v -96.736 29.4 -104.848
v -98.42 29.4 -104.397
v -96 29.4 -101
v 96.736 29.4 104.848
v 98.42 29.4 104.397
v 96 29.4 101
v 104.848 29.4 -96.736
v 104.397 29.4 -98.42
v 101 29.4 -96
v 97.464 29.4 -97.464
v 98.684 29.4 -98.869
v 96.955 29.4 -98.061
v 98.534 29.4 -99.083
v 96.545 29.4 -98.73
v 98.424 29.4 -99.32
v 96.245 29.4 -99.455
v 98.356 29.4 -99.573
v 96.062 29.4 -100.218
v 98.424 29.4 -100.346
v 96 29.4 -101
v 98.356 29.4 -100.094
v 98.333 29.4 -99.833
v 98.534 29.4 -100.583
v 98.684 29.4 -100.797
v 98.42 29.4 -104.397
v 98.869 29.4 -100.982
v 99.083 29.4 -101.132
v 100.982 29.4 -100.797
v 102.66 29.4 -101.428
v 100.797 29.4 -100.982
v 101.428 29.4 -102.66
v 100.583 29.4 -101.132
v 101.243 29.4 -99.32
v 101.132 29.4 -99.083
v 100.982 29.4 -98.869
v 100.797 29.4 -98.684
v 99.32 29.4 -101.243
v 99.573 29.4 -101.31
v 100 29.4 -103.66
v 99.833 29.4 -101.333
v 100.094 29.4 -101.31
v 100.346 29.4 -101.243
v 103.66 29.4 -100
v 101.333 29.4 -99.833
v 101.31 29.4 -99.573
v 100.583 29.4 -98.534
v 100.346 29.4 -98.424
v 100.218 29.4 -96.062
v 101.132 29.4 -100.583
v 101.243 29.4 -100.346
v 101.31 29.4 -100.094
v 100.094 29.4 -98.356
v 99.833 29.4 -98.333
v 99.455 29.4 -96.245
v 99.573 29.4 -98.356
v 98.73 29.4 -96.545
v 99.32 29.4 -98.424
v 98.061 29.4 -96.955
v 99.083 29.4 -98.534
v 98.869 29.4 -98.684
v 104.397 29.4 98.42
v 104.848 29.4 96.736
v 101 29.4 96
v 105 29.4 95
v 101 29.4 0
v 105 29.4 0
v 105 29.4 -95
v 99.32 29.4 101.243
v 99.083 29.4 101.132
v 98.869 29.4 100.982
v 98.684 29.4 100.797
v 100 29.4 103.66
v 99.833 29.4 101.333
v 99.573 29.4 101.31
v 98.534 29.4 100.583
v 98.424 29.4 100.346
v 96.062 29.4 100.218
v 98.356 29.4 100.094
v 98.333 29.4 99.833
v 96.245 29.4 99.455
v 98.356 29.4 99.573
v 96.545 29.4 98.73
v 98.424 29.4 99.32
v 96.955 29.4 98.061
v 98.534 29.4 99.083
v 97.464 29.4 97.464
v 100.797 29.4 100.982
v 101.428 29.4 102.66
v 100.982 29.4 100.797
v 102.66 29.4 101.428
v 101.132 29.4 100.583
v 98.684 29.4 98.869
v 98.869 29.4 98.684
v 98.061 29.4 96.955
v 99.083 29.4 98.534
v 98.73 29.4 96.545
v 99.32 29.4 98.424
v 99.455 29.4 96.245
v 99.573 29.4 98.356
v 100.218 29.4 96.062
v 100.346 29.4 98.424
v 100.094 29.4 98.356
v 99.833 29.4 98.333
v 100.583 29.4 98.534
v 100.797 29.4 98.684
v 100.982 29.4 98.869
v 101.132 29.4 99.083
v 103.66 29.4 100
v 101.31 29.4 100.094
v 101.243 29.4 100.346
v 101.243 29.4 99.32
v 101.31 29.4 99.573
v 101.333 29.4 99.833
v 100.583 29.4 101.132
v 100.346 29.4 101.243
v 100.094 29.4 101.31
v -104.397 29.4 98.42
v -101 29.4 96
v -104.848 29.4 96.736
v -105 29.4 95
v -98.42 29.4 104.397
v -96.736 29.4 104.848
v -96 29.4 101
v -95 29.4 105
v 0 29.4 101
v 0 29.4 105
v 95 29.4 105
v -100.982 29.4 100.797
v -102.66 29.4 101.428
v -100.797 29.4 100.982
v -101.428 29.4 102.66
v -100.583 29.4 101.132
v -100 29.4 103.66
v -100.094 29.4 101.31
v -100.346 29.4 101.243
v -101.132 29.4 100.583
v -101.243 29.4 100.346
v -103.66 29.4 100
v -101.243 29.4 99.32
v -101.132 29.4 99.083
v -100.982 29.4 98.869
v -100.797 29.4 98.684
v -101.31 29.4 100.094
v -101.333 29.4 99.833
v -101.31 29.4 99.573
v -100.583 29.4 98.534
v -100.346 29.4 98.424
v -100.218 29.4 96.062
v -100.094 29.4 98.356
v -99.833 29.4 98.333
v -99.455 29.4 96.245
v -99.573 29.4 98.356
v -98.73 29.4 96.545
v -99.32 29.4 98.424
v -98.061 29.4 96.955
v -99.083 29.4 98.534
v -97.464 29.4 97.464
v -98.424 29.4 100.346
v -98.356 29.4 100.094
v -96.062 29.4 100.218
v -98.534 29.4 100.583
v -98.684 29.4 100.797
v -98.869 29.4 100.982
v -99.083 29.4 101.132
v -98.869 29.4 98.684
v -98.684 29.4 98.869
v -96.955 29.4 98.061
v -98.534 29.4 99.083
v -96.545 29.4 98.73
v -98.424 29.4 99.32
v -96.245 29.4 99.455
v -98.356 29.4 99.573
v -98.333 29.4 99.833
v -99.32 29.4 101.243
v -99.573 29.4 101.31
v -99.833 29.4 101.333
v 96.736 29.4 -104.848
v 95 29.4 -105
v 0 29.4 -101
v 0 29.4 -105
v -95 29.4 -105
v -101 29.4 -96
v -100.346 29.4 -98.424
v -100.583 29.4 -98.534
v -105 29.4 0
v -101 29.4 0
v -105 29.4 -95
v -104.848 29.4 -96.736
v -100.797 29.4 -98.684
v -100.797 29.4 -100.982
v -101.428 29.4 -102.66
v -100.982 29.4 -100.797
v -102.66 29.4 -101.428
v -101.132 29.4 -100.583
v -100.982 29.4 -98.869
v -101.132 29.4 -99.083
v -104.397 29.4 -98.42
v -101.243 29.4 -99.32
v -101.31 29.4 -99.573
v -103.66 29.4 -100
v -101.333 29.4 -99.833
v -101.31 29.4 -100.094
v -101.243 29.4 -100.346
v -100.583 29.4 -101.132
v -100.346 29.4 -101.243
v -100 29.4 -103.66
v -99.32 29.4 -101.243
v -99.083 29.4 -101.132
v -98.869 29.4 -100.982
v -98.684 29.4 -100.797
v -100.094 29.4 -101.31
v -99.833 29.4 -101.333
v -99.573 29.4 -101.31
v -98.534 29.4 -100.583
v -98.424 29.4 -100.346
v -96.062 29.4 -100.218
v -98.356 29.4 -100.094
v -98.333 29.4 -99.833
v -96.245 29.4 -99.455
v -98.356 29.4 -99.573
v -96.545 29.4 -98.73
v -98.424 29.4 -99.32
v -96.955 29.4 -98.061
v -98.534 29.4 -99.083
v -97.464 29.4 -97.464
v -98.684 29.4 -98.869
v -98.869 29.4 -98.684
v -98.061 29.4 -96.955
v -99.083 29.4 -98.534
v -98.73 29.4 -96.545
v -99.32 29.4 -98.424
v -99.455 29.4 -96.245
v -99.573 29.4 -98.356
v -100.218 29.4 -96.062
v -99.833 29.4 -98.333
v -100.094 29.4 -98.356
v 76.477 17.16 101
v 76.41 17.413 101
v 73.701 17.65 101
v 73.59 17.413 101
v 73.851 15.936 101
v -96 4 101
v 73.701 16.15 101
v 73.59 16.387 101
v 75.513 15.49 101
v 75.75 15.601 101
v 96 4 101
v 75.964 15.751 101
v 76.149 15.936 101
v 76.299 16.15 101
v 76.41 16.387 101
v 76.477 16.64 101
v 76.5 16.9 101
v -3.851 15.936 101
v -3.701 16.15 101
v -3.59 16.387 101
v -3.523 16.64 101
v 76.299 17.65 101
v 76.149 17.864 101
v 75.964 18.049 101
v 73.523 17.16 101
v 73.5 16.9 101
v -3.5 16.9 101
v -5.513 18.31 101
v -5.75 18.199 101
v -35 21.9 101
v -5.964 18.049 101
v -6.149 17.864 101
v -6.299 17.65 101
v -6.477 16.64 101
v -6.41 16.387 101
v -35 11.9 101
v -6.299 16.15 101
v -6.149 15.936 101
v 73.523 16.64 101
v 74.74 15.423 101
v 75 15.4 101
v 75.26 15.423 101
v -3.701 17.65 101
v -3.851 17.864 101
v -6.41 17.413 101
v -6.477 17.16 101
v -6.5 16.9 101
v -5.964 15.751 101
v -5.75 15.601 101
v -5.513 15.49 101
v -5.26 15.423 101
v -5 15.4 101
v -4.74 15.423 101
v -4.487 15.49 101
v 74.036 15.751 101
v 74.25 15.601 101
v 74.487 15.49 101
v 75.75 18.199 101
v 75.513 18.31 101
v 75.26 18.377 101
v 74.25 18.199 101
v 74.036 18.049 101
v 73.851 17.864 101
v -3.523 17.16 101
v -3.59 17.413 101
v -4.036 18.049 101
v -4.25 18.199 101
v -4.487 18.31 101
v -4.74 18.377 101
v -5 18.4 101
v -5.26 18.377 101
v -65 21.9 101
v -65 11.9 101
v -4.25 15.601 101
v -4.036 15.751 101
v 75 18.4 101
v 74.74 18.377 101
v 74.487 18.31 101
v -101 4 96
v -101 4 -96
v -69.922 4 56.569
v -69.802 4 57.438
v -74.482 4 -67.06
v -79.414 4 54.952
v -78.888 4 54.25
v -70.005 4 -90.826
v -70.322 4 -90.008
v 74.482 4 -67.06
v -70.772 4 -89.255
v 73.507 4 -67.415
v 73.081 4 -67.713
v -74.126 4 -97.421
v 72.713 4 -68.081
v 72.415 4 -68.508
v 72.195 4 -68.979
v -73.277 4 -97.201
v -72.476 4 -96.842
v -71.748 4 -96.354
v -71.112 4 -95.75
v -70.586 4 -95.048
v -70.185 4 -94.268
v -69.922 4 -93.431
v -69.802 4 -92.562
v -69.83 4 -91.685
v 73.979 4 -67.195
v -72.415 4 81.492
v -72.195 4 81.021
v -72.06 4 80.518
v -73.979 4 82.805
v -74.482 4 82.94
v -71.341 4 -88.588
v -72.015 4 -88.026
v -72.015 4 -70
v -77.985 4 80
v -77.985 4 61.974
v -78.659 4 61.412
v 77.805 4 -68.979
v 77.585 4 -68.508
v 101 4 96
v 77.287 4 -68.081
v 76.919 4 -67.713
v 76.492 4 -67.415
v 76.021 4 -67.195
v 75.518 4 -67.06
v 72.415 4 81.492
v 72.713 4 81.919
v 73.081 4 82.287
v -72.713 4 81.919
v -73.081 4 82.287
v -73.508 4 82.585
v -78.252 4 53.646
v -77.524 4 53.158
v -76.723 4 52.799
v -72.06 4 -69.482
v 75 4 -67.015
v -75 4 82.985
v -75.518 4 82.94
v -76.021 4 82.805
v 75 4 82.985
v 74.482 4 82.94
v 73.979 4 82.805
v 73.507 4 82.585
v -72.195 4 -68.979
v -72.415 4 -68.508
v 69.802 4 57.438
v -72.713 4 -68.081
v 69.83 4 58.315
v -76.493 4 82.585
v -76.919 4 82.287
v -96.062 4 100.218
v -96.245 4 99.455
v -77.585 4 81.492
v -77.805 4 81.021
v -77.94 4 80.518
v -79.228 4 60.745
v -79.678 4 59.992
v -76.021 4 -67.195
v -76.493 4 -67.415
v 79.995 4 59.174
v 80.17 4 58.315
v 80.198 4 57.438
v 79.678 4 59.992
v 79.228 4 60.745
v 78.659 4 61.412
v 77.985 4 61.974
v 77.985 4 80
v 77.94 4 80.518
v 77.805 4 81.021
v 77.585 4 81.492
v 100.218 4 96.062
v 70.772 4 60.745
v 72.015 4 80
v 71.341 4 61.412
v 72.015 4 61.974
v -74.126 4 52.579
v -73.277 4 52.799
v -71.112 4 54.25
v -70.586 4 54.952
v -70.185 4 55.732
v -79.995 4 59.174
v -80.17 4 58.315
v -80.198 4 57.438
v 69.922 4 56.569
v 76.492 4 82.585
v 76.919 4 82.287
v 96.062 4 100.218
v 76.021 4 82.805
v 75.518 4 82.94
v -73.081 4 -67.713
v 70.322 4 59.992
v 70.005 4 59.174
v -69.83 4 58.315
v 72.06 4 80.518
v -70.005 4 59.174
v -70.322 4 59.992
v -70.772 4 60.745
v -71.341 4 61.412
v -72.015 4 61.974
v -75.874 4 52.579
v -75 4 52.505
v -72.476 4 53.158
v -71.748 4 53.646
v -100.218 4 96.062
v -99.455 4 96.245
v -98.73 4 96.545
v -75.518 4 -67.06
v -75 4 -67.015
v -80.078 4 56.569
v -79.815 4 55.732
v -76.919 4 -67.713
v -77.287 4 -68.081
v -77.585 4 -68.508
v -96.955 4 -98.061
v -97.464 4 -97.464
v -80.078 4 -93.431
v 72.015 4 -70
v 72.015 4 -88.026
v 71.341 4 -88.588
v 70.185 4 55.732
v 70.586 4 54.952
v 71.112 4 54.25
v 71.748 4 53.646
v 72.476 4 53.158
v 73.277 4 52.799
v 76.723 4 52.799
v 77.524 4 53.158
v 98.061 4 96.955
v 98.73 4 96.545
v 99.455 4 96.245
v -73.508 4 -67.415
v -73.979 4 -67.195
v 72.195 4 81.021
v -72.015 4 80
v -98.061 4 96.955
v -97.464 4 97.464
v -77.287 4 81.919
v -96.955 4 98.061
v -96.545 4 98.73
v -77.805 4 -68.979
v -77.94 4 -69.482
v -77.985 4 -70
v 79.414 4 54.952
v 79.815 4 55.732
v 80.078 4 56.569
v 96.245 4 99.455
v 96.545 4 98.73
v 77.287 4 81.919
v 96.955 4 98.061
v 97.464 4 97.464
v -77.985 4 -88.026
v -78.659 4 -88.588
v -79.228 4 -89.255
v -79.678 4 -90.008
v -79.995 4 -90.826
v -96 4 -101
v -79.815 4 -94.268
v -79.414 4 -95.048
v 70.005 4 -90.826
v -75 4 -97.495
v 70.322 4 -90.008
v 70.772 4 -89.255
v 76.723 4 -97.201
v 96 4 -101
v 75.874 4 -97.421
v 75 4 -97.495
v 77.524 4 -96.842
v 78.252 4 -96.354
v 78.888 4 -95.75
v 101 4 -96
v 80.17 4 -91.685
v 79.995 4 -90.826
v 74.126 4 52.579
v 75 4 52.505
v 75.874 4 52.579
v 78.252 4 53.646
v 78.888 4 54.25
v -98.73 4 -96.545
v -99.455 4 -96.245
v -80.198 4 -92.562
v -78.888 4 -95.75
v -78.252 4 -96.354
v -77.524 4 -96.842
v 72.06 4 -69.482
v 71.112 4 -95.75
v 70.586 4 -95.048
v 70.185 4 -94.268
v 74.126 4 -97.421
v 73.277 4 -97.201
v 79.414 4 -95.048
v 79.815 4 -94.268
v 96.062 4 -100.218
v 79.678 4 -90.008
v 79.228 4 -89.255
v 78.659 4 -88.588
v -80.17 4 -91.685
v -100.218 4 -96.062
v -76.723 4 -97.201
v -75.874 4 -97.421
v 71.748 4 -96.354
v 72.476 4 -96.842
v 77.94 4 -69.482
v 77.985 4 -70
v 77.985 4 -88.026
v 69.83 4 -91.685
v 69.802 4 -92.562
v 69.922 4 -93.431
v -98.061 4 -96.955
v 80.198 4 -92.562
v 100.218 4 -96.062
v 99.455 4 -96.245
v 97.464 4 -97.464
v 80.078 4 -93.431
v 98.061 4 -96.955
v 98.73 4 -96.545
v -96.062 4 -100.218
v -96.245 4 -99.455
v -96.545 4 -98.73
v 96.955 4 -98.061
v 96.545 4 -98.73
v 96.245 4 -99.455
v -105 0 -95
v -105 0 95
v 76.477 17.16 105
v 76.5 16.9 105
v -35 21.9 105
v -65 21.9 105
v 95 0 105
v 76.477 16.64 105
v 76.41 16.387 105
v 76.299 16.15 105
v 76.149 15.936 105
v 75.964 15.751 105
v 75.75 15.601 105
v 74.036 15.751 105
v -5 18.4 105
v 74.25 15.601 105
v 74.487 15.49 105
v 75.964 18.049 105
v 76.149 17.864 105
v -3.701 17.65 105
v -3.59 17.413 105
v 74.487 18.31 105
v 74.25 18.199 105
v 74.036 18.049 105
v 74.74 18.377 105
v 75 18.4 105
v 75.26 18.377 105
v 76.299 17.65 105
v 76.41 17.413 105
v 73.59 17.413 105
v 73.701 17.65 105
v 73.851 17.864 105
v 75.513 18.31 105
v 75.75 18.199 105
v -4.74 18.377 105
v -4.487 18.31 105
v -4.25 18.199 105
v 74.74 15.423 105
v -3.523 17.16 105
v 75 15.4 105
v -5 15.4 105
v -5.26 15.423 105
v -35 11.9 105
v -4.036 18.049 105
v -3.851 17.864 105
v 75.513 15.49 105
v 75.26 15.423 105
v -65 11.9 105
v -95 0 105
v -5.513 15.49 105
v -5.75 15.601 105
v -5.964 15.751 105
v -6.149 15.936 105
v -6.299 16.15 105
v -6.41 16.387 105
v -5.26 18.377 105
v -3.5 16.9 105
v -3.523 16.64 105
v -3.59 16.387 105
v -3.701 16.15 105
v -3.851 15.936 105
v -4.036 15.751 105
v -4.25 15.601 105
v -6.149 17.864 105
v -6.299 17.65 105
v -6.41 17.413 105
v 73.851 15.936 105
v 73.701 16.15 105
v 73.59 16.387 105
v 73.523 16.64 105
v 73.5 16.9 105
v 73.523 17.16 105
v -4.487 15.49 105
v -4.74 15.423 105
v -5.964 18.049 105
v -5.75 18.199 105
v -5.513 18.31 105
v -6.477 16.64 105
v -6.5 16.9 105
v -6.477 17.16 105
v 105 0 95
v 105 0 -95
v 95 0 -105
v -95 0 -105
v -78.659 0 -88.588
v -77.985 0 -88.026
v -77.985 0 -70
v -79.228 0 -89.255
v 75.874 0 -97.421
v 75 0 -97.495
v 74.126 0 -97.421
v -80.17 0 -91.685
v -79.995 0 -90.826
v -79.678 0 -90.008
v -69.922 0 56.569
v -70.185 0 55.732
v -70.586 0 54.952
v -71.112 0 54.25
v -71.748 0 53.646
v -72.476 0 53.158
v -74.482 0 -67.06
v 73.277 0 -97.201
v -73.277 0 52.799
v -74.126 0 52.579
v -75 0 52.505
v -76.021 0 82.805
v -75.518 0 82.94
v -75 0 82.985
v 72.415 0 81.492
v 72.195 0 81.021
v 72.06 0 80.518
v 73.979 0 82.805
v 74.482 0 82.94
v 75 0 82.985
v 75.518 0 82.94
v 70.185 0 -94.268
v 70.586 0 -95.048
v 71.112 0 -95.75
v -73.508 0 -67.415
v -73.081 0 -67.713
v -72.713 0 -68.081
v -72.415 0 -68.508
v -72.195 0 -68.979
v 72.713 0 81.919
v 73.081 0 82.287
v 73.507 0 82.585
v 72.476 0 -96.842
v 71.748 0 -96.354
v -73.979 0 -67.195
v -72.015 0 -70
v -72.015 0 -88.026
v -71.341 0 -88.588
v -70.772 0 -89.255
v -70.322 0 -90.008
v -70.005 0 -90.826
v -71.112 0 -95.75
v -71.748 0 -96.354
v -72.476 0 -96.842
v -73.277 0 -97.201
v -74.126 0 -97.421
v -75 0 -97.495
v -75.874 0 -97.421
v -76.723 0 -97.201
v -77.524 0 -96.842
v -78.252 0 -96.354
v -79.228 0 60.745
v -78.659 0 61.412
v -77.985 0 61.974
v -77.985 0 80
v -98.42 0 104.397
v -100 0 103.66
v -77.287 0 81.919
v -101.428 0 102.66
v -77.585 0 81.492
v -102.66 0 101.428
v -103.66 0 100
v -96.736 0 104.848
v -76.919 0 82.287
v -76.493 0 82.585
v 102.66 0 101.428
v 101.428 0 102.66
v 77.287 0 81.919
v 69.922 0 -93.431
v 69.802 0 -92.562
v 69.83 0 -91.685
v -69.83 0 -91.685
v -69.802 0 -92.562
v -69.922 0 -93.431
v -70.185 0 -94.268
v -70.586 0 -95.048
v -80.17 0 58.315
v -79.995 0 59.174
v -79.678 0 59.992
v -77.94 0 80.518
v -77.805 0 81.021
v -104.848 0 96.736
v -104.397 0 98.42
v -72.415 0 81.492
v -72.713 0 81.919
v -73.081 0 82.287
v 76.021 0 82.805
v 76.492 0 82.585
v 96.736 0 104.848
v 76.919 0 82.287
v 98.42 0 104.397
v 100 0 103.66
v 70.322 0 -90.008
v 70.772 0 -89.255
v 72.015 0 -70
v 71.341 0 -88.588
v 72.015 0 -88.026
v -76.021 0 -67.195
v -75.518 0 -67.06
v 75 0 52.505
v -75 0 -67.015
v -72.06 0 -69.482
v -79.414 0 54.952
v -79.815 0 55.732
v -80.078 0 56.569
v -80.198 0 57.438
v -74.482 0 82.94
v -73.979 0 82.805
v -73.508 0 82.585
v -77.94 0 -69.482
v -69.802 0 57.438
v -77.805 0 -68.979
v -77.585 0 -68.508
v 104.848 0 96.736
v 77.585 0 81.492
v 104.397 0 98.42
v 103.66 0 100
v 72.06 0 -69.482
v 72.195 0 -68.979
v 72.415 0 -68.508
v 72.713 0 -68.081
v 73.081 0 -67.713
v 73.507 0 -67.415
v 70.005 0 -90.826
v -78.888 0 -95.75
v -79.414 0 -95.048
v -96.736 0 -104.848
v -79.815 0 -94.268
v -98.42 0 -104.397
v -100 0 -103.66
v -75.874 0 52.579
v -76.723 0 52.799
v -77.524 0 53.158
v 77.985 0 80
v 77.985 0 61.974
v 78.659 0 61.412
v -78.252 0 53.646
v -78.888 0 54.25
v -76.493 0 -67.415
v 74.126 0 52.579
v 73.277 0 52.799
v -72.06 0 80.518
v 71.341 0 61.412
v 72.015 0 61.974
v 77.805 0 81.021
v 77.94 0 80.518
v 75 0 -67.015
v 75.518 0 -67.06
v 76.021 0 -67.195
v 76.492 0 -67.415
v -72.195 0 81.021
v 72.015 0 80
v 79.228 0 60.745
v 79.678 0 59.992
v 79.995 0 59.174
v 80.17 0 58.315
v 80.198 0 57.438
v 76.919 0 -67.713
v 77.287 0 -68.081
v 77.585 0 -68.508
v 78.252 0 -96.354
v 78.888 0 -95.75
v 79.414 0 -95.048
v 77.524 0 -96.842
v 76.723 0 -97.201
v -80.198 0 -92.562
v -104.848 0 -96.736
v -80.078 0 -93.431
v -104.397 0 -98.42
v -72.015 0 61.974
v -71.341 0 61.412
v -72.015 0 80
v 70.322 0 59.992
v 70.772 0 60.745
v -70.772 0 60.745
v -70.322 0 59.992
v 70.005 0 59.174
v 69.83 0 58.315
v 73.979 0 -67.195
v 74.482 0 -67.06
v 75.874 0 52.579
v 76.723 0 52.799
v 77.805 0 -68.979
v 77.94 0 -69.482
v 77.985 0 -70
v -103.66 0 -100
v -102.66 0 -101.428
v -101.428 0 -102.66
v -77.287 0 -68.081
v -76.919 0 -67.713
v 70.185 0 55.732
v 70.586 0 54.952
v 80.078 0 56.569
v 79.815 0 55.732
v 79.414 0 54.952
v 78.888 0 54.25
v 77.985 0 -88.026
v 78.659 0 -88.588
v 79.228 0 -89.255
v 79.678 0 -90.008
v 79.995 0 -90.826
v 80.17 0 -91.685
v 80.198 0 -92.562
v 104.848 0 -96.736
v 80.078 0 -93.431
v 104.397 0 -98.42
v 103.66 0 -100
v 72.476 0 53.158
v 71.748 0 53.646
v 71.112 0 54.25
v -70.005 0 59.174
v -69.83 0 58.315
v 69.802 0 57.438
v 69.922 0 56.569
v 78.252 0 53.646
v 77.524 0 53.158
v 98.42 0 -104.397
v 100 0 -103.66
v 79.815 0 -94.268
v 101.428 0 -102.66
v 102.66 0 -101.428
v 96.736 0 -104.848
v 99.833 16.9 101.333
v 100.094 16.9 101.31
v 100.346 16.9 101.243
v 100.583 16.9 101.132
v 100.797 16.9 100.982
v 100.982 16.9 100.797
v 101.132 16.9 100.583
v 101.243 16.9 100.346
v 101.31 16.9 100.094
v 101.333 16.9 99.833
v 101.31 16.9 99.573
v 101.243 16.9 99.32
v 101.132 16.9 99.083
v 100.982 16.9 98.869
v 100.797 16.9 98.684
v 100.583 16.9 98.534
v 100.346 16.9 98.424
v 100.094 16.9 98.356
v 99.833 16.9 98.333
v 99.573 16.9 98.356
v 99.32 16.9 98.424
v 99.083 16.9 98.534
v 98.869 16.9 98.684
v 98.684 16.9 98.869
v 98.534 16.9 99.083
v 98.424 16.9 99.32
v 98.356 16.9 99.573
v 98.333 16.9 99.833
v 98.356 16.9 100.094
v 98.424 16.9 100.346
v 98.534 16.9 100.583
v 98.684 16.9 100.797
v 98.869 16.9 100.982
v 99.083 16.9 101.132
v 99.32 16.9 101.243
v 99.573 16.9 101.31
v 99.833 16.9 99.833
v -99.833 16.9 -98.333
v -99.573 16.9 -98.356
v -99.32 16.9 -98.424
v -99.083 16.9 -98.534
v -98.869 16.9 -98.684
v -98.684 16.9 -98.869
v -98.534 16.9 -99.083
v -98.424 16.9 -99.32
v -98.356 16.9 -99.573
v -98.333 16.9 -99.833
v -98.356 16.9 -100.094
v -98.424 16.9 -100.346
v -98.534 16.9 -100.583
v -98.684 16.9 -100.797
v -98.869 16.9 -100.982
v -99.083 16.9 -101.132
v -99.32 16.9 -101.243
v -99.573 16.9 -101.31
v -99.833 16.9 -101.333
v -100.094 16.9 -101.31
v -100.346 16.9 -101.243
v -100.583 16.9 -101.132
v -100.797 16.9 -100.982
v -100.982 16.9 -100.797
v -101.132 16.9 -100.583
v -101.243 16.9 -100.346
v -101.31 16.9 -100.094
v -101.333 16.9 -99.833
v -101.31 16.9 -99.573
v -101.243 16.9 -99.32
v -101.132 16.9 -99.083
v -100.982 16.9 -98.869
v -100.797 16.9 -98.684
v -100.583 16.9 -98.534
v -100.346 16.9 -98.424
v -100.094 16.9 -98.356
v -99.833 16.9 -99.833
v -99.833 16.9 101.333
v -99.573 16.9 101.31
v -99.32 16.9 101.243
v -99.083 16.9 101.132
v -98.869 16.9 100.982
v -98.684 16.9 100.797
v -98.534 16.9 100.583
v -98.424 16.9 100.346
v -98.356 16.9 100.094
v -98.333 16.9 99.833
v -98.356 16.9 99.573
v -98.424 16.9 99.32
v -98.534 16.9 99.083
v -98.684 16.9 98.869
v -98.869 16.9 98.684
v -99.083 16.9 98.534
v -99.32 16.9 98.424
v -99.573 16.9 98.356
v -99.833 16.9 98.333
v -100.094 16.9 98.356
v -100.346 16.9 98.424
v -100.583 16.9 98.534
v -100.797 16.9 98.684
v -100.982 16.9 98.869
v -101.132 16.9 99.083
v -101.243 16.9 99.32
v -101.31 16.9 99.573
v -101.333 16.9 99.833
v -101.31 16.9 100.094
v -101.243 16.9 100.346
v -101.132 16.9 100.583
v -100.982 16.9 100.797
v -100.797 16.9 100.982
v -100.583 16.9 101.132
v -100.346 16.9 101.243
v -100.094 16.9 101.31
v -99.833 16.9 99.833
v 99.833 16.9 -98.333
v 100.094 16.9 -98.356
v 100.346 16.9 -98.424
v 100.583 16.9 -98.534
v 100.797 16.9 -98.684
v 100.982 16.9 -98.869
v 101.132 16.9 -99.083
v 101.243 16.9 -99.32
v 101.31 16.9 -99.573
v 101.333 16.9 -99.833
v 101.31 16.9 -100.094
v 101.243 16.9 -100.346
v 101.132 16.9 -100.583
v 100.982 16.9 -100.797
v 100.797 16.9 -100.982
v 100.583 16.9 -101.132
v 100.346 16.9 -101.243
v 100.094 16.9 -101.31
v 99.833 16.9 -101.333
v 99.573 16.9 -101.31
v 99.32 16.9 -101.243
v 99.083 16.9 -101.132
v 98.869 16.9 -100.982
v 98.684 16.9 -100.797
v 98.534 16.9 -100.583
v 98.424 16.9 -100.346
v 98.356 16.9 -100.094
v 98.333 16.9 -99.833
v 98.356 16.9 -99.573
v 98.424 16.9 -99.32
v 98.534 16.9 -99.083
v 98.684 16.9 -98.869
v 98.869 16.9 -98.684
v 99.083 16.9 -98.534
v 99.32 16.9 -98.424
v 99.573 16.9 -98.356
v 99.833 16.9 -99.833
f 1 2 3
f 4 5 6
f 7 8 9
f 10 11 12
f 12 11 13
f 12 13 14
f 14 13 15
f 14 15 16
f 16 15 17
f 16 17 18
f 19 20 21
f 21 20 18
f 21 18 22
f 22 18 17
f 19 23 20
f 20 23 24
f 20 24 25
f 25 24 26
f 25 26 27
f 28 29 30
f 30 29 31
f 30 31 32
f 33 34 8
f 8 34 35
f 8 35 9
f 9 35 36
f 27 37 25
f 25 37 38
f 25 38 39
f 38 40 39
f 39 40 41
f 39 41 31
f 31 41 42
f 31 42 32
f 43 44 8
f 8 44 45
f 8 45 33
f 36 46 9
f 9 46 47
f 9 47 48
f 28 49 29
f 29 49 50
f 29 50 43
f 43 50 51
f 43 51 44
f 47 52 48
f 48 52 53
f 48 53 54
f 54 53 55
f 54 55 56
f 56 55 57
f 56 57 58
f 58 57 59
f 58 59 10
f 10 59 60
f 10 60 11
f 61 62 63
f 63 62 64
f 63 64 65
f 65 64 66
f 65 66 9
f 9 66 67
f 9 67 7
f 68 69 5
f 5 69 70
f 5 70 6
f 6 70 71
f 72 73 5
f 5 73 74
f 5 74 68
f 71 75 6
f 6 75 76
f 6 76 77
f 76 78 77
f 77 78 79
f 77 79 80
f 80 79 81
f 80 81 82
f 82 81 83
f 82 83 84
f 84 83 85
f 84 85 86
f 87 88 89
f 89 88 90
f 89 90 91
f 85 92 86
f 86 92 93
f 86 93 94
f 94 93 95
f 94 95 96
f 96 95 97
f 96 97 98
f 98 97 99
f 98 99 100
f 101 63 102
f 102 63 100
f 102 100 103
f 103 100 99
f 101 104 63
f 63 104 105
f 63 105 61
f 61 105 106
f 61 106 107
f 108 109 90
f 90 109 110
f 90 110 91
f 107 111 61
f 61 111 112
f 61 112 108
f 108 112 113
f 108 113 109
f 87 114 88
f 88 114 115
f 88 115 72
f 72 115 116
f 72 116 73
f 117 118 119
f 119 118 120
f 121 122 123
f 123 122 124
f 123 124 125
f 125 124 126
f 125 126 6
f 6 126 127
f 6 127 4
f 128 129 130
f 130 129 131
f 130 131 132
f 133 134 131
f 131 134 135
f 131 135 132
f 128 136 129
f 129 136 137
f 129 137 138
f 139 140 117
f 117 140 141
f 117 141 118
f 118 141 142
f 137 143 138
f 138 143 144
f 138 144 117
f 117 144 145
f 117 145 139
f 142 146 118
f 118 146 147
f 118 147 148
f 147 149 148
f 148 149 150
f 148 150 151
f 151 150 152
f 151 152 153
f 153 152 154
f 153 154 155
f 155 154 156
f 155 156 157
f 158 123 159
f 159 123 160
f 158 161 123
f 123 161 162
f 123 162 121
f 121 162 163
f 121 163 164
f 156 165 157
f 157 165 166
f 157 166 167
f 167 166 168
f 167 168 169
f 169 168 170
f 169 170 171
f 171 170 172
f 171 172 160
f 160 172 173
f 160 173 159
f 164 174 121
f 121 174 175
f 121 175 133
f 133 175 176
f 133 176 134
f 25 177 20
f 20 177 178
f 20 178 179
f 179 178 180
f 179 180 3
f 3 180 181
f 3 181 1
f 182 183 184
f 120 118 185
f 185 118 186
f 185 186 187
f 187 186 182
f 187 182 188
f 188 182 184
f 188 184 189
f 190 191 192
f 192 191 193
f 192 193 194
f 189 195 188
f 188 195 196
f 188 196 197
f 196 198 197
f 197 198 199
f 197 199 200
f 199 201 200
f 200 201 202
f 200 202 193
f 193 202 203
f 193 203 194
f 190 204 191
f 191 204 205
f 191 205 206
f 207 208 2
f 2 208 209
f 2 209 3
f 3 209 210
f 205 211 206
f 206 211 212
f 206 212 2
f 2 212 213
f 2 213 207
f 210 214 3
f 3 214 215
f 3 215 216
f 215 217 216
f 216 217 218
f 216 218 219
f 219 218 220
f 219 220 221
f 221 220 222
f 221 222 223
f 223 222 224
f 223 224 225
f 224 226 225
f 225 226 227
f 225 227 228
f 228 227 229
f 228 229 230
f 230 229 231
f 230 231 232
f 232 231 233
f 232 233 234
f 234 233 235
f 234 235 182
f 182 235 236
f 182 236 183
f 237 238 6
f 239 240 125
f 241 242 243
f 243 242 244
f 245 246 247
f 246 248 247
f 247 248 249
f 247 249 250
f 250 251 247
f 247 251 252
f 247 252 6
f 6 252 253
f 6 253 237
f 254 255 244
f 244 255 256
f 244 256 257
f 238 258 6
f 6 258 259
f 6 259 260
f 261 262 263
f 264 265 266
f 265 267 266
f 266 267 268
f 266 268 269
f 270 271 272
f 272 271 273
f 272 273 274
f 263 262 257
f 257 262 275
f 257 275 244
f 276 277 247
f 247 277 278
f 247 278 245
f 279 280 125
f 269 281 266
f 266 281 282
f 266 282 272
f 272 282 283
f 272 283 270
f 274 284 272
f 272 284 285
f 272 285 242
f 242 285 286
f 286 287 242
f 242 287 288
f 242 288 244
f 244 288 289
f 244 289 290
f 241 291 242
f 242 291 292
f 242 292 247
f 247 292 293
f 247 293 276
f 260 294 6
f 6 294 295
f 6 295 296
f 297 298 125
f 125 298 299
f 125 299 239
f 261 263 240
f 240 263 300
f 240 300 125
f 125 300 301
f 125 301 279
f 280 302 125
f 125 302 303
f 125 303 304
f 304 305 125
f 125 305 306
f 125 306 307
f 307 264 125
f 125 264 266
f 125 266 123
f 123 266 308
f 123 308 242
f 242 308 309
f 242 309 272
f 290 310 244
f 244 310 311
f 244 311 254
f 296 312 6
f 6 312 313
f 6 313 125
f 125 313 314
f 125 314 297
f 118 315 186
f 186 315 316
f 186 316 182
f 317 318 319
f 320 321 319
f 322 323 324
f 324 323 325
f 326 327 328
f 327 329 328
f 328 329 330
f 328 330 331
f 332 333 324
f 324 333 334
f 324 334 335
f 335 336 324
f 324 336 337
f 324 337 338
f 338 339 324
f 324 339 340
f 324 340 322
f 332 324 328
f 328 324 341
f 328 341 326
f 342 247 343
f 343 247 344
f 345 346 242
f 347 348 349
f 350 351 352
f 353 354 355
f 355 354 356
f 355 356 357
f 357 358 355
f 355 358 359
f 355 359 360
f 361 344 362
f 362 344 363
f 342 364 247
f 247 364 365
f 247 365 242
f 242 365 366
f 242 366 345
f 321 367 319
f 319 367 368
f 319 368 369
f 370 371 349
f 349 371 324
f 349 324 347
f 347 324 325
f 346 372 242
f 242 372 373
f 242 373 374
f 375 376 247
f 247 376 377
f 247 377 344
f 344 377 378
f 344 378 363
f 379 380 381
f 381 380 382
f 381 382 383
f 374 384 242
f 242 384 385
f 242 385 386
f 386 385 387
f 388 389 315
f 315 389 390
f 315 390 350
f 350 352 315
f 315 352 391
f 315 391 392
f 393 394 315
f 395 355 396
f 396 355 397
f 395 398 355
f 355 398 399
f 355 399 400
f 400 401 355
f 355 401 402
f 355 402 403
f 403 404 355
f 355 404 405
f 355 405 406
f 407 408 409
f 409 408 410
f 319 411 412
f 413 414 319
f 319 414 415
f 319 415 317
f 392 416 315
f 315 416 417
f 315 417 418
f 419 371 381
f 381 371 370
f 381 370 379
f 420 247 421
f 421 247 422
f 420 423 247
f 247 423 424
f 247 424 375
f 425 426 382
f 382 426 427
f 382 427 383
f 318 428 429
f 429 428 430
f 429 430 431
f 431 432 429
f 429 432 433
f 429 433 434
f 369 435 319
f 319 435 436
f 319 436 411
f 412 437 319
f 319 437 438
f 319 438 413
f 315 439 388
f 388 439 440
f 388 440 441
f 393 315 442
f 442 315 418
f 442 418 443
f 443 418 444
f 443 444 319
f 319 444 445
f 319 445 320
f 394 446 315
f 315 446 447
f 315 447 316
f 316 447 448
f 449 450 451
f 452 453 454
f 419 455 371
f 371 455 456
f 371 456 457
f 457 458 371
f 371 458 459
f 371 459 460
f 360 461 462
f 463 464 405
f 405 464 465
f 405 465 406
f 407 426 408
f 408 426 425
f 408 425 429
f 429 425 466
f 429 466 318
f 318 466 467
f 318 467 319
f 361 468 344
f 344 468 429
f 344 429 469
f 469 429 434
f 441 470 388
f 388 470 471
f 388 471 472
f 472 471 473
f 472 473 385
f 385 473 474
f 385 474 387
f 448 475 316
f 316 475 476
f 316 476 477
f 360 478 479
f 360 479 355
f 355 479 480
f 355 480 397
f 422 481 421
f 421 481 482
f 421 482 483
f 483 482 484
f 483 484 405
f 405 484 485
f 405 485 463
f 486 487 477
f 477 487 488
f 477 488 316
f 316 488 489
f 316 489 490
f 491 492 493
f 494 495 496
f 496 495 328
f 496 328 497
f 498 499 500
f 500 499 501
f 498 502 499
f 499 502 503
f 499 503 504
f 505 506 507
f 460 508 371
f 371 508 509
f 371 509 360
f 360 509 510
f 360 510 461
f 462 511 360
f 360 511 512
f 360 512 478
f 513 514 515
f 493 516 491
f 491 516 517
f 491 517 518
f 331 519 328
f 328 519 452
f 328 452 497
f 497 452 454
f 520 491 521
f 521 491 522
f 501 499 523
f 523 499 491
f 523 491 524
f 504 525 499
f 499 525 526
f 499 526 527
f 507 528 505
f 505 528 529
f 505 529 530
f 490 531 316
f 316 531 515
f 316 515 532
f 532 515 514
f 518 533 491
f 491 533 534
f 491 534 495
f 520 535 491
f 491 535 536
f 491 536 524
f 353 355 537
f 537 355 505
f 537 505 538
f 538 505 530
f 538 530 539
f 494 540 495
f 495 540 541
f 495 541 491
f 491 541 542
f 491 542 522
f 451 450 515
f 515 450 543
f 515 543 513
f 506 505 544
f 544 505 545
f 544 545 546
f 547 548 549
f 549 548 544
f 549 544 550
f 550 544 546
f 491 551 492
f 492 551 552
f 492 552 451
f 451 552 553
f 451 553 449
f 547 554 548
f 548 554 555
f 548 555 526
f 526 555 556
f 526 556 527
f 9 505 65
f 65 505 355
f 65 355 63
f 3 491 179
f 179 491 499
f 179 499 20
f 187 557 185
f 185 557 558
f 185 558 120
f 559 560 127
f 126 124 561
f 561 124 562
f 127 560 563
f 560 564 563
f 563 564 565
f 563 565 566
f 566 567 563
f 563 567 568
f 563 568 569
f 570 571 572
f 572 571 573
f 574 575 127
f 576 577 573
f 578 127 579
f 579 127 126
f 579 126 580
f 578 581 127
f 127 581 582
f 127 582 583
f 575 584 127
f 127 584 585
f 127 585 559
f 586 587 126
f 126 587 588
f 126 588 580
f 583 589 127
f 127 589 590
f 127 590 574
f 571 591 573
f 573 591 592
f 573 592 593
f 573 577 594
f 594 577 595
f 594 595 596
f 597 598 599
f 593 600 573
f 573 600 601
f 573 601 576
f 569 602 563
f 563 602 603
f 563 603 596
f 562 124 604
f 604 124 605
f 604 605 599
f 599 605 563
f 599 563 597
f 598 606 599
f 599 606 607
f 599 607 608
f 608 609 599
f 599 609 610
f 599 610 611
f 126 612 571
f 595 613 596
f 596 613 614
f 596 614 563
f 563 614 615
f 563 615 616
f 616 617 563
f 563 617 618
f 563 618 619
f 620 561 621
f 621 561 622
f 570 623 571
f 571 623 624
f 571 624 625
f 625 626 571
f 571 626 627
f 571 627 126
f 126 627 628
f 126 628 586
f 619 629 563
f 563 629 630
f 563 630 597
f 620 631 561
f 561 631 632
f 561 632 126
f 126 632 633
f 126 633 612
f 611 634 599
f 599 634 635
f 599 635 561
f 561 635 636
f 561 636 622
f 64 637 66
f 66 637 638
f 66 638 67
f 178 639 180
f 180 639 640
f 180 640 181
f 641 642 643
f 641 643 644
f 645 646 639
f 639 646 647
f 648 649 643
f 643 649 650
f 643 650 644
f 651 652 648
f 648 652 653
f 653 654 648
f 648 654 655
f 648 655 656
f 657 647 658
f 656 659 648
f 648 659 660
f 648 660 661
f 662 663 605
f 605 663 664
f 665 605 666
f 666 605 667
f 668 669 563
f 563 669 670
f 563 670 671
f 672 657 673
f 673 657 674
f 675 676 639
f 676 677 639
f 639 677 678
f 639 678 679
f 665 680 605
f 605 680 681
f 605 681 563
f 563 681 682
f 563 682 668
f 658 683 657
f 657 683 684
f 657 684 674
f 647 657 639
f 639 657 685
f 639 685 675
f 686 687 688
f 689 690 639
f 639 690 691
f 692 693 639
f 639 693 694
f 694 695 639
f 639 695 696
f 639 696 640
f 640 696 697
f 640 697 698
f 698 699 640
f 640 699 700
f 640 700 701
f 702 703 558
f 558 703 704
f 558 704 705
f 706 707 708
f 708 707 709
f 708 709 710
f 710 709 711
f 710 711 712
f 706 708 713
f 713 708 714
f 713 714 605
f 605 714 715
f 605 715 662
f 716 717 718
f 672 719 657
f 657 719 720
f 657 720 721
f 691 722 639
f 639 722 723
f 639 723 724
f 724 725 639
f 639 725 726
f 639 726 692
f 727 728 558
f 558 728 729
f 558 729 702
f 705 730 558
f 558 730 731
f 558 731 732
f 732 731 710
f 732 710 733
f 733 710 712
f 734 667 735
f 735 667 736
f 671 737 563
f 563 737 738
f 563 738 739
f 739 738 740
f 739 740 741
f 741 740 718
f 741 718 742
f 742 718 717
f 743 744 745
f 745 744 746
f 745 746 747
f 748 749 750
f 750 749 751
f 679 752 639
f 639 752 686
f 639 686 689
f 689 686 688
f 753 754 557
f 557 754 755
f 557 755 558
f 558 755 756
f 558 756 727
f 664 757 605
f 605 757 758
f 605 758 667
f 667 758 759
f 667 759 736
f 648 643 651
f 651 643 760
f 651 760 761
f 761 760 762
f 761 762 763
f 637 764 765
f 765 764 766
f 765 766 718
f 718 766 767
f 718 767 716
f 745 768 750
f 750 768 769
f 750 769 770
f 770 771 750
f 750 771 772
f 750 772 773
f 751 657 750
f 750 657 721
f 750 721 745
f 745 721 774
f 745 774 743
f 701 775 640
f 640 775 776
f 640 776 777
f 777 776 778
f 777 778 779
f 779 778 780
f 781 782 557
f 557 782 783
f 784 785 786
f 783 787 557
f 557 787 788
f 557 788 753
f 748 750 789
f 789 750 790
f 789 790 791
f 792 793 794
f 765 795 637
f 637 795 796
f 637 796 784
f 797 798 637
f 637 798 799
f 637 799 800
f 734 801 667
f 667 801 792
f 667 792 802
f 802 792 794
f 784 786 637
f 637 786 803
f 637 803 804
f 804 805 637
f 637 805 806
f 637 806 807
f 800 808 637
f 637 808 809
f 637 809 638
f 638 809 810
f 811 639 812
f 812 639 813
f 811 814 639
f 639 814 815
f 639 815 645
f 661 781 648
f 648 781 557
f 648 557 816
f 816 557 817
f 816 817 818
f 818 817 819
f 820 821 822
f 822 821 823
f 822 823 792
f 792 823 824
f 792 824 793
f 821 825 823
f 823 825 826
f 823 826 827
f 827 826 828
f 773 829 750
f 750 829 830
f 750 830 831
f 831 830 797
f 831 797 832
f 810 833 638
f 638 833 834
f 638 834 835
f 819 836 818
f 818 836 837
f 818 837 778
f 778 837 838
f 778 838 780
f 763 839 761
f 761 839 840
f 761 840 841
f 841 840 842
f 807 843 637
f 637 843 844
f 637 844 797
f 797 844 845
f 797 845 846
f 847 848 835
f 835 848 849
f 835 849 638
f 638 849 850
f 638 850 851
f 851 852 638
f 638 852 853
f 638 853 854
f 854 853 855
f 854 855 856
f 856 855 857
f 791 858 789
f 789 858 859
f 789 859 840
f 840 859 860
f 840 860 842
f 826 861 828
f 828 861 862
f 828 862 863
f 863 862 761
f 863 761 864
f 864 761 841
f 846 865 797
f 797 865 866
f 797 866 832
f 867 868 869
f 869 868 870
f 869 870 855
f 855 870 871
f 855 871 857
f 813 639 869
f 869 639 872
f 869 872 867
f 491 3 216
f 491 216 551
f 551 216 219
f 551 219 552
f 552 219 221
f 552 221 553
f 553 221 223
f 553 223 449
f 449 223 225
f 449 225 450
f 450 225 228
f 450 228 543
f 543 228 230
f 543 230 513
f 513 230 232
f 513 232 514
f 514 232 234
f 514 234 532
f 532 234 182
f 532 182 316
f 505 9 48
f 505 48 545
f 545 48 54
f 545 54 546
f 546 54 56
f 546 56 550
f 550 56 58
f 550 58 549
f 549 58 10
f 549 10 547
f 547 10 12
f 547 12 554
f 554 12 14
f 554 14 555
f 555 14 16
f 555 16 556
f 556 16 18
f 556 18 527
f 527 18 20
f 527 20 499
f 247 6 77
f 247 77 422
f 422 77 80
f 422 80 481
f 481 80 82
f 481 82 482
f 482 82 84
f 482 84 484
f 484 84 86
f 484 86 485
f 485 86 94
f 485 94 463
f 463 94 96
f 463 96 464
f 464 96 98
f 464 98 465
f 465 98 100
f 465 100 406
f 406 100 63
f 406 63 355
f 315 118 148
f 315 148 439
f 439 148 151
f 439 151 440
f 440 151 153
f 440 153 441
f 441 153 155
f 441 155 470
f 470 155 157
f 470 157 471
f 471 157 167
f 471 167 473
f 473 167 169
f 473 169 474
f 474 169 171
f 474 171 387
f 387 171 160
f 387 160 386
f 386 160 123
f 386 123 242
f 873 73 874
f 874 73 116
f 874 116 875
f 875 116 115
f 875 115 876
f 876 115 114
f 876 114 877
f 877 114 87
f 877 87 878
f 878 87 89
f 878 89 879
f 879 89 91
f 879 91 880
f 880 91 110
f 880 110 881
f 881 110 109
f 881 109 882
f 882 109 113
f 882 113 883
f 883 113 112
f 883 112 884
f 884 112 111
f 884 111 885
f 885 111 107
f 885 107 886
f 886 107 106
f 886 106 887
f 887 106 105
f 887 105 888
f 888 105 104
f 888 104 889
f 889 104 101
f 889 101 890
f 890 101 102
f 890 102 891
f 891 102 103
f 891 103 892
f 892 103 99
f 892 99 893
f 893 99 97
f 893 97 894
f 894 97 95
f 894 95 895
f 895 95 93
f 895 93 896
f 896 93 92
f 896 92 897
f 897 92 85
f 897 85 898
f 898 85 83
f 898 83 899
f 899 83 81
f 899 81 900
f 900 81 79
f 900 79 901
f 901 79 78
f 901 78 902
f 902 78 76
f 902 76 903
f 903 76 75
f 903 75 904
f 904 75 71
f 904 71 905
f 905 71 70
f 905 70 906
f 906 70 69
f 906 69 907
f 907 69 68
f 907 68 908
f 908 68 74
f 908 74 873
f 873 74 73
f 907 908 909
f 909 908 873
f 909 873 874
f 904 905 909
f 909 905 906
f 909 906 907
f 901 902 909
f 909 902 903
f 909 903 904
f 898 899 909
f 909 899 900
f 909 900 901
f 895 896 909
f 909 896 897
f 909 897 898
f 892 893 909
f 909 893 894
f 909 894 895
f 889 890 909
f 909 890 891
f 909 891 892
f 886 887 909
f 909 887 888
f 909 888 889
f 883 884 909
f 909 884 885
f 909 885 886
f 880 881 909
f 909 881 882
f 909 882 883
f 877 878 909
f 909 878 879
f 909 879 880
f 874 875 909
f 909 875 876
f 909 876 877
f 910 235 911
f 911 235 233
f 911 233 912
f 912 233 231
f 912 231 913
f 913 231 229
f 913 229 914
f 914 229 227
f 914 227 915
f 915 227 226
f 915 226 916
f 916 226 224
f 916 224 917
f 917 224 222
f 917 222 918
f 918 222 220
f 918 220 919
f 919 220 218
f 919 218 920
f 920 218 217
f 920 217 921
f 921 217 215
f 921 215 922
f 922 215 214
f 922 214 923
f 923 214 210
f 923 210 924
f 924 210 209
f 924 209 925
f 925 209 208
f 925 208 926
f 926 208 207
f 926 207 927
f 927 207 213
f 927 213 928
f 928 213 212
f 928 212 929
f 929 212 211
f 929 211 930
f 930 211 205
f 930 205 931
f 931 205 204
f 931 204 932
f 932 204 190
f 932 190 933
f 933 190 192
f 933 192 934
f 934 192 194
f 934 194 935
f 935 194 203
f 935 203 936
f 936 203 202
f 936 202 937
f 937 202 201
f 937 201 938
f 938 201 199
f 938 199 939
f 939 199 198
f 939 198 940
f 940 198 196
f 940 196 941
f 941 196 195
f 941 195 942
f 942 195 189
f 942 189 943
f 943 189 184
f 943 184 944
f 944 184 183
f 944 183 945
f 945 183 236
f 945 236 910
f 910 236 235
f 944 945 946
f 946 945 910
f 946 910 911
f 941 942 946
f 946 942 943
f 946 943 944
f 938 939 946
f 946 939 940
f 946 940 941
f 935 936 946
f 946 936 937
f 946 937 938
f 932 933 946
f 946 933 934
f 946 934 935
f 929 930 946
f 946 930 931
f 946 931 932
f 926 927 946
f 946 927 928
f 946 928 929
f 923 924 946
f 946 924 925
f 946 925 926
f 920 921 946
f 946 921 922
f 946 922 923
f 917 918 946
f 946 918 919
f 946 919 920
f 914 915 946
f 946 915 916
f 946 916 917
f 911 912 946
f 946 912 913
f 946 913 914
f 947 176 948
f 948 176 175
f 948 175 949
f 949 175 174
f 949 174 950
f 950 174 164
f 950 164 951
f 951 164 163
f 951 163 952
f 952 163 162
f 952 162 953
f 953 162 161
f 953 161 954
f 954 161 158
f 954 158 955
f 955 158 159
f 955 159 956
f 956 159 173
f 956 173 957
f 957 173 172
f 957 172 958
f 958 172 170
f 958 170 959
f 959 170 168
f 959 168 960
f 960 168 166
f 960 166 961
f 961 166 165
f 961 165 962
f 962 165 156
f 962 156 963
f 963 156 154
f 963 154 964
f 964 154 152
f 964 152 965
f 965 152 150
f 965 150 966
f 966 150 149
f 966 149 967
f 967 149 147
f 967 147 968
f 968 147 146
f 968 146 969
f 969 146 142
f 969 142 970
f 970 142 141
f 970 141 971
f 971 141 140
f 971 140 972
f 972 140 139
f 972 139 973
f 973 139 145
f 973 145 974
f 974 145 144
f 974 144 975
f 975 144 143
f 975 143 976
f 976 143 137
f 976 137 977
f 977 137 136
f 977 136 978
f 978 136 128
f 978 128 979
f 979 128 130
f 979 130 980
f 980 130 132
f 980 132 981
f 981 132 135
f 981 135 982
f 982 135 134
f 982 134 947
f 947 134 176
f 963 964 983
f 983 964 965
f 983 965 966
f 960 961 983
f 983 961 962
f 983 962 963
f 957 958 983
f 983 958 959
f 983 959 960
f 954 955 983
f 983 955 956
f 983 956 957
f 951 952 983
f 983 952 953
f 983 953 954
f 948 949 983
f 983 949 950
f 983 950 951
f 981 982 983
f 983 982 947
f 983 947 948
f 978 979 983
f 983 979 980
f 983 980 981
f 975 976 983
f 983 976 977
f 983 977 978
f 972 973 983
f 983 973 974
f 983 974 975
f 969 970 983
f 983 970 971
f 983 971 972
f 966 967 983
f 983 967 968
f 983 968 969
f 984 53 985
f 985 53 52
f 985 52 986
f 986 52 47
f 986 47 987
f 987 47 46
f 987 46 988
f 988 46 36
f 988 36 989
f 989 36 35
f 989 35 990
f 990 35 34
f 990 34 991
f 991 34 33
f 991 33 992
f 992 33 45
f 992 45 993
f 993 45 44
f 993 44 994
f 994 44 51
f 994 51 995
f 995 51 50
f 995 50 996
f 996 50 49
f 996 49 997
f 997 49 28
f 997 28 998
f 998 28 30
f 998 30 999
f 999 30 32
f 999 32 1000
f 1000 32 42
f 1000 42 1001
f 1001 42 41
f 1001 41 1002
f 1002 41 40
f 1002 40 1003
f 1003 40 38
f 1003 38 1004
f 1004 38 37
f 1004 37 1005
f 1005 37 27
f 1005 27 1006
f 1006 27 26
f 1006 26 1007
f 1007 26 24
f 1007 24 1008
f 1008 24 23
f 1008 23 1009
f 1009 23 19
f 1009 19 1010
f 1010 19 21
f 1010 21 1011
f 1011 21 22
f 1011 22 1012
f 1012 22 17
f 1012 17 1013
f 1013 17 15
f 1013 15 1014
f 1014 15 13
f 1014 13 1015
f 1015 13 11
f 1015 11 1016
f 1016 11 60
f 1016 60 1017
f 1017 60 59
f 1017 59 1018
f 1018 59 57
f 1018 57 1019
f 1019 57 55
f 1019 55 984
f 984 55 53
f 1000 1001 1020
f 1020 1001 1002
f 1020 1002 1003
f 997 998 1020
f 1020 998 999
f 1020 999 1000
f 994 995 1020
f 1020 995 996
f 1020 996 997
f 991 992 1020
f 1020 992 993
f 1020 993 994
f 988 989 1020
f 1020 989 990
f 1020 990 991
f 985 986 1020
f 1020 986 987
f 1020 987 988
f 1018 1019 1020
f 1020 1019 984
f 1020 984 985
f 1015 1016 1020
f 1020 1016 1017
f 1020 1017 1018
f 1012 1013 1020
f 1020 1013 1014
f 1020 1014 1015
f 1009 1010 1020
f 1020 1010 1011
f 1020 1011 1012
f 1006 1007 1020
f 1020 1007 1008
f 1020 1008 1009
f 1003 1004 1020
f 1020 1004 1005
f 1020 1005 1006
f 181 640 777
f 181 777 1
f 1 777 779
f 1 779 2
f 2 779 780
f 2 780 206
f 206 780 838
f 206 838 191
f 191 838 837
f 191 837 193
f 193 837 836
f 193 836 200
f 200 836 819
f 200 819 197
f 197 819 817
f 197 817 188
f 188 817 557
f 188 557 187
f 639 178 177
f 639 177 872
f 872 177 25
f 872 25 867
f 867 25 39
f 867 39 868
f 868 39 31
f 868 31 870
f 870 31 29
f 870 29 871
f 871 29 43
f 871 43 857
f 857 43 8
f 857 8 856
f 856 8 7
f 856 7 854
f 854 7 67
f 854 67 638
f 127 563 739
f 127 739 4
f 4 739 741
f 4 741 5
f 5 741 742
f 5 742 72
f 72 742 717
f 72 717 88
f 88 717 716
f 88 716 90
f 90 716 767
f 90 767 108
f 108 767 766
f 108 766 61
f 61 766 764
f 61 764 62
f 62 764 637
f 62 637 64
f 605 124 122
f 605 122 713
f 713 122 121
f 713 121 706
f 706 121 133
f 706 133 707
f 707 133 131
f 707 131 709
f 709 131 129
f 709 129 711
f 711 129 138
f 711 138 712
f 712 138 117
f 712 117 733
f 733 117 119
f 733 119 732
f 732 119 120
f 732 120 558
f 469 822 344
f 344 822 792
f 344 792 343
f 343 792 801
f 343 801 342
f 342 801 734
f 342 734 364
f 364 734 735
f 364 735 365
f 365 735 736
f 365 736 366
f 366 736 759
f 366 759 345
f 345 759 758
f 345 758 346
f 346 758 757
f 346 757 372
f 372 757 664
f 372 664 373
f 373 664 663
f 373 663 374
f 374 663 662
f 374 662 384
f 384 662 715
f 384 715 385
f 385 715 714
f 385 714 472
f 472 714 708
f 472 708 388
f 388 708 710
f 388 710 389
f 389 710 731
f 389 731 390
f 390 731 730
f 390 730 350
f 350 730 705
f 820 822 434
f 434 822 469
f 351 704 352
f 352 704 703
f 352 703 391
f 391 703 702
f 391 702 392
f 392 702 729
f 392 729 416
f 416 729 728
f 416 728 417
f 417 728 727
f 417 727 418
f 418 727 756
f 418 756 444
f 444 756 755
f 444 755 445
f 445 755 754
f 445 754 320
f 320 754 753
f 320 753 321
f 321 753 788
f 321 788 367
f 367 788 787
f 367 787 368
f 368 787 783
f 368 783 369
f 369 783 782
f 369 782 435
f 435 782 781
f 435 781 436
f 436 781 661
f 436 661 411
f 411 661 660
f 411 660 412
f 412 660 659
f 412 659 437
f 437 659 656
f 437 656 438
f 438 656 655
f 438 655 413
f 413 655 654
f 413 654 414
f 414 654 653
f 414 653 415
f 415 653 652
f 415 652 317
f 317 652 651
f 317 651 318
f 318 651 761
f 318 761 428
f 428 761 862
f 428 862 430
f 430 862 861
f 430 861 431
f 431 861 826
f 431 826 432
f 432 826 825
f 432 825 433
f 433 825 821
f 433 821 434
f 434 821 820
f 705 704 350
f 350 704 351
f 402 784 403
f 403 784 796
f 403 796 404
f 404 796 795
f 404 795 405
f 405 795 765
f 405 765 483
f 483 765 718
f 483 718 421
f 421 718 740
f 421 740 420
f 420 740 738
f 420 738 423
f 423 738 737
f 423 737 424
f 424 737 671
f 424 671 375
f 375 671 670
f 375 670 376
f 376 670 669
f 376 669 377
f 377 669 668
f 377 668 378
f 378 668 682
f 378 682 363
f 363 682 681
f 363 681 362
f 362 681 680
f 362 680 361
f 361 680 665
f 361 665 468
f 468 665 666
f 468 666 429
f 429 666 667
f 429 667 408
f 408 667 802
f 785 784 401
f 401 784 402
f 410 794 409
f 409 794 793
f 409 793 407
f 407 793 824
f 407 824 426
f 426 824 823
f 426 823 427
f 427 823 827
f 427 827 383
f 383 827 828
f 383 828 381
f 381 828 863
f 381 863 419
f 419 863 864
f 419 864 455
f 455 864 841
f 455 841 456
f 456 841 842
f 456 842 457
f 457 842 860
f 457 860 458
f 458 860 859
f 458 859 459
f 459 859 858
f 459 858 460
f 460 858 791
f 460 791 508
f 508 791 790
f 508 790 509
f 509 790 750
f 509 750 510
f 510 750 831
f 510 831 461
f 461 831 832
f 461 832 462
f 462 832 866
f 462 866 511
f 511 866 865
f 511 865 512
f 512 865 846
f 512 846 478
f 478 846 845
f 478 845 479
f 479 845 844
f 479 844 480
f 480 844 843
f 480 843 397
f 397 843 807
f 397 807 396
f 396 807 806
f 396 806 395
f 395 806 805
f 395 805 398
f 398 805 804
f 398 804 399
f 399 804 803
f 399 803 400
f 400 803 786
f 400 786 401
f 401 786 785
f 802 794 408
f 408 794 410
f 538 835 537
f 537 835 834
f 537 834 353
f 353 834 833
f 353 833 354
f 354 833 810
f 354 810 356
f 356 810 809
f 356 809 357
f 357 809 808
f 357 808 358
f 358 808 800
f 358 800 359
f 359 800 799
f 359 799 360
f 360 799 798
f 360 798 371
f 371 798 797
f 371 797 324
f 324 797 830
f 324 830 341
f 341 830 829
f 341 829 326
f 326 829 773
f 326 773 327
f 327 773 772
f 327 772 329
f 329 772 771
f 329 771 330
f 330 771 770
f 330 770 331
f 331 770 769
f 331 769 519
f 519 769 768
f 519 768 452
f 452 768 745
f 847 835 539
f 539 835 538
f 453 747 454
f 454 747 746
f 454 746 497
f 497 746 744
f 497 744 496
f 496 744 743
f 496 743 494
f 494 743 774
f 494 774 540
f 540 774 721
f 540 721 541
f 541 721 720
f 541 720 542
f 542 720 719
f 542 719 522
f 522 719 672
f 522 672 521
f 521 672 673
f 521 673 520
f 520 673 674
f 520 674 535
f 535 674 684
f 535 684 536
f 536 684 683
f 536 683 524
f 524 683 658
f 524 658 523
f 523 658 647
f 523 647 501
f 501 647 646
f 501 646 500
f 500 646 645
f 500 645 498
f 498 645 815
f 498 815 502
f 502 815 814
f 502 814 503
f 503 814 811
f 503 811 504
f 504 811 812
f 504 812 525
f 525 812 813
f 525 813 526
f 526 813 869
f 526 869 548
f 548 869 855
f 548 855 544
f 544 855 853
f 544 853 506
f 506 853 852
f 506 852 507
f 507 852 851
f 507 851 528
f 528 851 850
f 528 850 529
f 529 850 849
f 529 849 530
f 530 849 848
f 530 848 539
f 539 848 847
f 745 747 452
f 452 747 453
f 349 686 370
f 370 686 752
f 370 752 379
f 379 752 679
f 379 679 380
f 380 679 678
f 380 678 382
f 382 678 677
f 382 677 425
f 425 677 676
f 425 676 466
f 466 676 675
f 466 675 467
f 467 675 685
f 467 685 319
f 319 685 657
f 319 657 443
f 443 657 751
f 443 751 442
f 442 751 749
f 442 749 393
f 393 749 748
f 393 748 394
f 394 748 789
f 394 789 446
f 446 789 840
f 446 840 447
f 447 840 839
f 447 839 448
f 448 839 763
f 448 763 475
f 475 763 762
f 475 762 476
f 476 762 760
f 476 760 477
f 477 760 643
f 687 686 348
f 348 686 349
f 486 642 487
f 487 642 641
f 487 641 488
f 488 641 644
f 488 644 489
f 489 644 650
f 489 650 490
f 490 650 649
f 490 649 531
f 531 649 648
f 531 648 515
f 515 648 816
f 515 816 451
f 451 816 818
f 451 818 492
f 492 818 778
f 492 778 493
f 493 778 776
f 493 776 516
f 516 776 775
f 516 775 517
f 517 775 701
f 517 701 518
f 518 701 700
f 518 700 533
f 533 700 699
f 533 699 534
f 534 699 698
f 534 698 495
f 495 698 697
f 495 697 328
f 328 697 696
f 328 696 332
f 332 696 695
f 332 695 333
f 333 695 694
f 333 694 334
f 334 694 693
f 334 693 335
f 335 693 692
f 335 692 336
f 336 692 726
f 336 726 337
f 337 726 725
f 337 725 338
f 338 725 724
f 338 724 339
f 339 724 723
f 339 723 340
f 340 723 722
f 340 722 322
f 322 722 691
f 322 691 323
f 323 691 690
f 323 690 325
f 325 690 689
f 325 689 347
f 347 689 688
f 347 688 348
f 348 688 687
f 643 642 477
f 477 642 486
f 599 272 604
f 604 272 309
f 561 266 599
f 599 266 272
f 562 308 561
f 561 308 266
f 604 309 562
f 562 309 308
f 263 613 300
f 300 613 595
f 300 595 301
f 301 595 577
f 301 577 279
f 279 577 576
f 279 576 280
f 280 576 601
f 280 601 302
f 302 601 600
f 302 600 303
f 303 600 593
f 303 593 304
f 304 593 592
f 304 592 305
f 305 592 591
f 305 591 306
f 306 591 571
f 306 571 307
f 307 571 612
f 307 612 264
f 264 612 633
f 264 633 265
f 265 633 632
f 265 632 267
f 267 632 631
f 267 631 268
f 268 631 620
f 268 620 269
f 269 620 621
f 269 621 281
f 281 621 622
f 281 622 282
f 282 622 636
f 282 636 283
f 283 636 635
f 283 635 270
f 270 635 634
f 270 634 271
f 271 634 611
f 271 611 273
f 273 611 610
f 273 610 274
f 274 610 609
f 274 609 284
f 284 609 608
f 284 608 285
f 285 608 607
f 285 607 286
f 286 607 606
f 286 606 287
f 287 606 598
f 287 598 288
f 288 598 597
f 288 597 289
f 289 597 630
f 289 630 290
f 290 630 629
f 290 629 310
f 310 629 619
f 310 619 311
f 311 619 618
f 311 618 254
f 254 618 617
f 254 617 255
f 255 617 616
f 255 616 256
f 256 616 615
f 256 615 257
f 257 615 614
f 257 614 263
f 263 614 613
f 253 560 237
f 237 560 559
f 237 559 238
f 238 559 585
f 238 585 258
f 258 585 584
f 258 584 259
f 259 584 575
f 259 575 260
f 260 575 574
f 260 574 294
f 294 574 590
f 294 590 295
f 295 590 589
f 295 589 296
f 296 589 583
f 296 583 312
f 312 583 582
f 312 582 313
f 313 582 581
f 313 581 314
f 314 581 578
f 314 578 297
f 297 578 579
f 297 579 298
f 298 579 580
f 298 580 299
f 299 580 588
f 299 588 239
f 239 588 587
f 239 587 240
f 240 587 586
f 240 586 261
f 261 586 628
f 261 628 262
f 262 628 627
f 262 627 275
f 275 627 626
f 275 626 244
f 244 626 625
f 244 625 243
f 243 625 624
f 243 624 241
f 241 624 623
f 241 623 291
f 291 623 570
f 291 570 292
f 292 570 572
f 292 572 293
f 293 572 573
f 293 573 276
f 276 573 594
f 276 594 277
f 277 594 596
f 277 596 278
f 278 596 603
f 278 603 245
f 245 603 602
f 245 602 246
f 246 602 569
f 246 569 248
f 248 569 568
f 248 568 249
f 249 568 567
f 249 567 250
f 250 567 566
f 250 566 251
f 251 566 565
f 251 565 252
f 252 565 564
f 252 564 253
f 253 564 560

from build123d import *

# Parameters (mm, degrees)
SKETCH1_W            = 210
SKETCH1_H            = 210
BASE_DEPTH           = 4
WALLS_START          = 4
SKETCH1_3_W          = 210
SKETCH1_3_H          = 210
SKETCH1_3_W_2        = 202
SKETCH1_3_H_2        = 202
WALLS_DEPTH          = 25.4
SCREWMOUNTS_DEPTH    = 25.4
SKETCH2_5_R          = 1.5
SCREWHOLES_DEPTH     = 12.5
ROUNDEDCORNERS_R     = 10
BACKHOLEMOUNTS_DEPTH = 4
SKETCH4_R            = 1.5
SKETCH4_W            = 30
SKETCH4_H            = 10
BATTERYPACK_DEPTH    = 4


with BuildPart() as part:
    # Sketch1 → Base (new body)
    with BuildSketch(Plane(origin=(0, 0, 0), x_dir=(1, 0, 0), z_dir=(0, 1, 0))):
        Rectangle(SKETCH1_W, SKETCH1_H)
    extrude(amount=BASE_DEPTH)

    # Sketch1<3> → Walls (add)
    with BuildSketch(Plane(origin=(0, 0, 0), x_dir=(1, 0, 0), z_dir=(0, 1, 0)).offset(WALLS_START)):
        Rectangle(SKETCH1_3_W, SKETCH1_3_H)
        Rectangle(SKETCH1_3_W_2, SKETCH1_3_H_2, mode=Mode.SUBTRACT)
    extrude(amount=WALLS_DEPTH)

    # Sketch2 → ScrewMounts (add)
    with BuildSketch(Plane(origin=(0, 29.4, 0), x_dir=(1, 0, 0), z_dir=(0, 1, 0))):
        with BuildLine():
            Line((-101, 101), (-101, 96))
            ThreePointArc((-101, 96), (-97.464466094, 97.464466094), (-96, 101))
            Line((-96, 101), (-101, 101))
        make_face()
        with BuildLine():
            Line((-101, -101), (-96, -101))
            ThreePointArc((-96, -101), (-97.464466094, -97.464466094), (-101, -96))
            Line((-101, -96), (-101, -101))
        make_face()
        with BuildLine():
            Line((101, 101), (96, 101))
            ThreePointArc((96, 101), (97.464466094, 97.464466094), (101, 96))
            Line((101, 96), (101, 101))
        make_face()
        with BuildLine():
            Line((101, -101), (101, -96))
            ThreePointArc((101, -96), (97.464466094, -97.464466094), (96, -101))
            Line((96, -101), (101, -101))
        make_face()
    extrude(amount=-SCREWMOUNTS_DEPTH)

    # Sketch2<5> → ScrewHoles (cut)
    with BuildSketch(Plane(origin=(0, 29.4, 0), x_dir=(1, 0, 0), z_dir=(0, 1, 0))):
        with Locations((-99.833273811, 99.833273811)):
            Circle(SKETCH2_5_R)
        with Locations((-99.833273811, -99.833273811)):
            Circle(SKETCH2_5_R)
        with Locations((99.833273811, 99.833273811)):
            Circle(SKETCH2_5_R)
        with Locations((99.833273811, -99.833273811)):
            Circle(SKETCH2_5_R)
    extrude(amount=-SCREWHOLES_DEPTH, mode=Mode.SUBTRACT)

    # RoundedCorners
    roundedcorners_edges = [part.edges().sort_by_distance(p)[0] for p in [
        (-105, 14.7, 105),
        (105, 14.7, 105),
        (105, 14.7, -105),
        (-105, 14.7, -105),
    ]]
    fillet(roundedcorners_edges, radius=ROUNDEDCORNERS_R)

    # Sketch3 → BackHoleMounts (cut)
    with BuildSketch(Plane.XZ):
        with BuildLine():
            Line((-77.985, 80), (-77.985, 61.974012195))
            ThreePointArc((-77.985, 61.974012195), (-75, 52.505), (-72.015, 61.974012195))
            Line((-72.015, 61.974012195), (-72.015, 80))
            ThreePointArc((-72.015, 80), (-75, 82.985), (-77.985, 80))
        make_face()
        with BuildLine():
            Line((77.985, 80), (77.985, 61.974012195))
            ThreePointArc((77.985, 61.974012195), (75, 52.505), (72.015, 61.974012195))
            Line((72.015, 61.974012195), (72.015, 80))
            ThreePointArc((72.015, 80), (75, 82.985), (77.985, 80))
        make_face()
        with BuildLine():
            Line((72.015, -70), (72.015, -88.025987805))
            ThreePointArc((72.015, -88.025987805), (75, -97.495), (77.985, -88.025987805))
            Line((77.985, -88.025987805), (77.985, -70))
            ThreePointArc((77.985, -70), (75, -67.015), (72.015, -70))
        make_face()
        with BuildLine():
            Line((-77.985, -70), (-77.985, -88.025987805))
            ThreePointArc((-77.985, -88.025987805), (-75, -97.495), (-72.015, -88.025987805))
            Line((-72.015, -88.025987805), (-72.015, -70))
            ThreePointArc((-72.015, -70), (-75, -67.015), (-77.985, -70))
        make_face()
    extrude(amount=-BACKHOLEMOUNTS_DEPTH, mode=Mode.SUBTRACT)

    # Sketch4 → BatteryPack (cut)
    with BuildSketch(Plane.XY.offset(105)):
        with Locations((75, 16.9)):
            Circle(SKETCH4_R)
        with Locations((-5, 16.9)):
            Circle(SKETCH4_R)
        with Locations((-50, 16.9)):
            Rectangle(SKETCH4_W, SKETCH4_H)
    extrude(amount=-BATTERYPACK_DEPTH, mode=Mode.SUBTRACT)


solid = part.part
